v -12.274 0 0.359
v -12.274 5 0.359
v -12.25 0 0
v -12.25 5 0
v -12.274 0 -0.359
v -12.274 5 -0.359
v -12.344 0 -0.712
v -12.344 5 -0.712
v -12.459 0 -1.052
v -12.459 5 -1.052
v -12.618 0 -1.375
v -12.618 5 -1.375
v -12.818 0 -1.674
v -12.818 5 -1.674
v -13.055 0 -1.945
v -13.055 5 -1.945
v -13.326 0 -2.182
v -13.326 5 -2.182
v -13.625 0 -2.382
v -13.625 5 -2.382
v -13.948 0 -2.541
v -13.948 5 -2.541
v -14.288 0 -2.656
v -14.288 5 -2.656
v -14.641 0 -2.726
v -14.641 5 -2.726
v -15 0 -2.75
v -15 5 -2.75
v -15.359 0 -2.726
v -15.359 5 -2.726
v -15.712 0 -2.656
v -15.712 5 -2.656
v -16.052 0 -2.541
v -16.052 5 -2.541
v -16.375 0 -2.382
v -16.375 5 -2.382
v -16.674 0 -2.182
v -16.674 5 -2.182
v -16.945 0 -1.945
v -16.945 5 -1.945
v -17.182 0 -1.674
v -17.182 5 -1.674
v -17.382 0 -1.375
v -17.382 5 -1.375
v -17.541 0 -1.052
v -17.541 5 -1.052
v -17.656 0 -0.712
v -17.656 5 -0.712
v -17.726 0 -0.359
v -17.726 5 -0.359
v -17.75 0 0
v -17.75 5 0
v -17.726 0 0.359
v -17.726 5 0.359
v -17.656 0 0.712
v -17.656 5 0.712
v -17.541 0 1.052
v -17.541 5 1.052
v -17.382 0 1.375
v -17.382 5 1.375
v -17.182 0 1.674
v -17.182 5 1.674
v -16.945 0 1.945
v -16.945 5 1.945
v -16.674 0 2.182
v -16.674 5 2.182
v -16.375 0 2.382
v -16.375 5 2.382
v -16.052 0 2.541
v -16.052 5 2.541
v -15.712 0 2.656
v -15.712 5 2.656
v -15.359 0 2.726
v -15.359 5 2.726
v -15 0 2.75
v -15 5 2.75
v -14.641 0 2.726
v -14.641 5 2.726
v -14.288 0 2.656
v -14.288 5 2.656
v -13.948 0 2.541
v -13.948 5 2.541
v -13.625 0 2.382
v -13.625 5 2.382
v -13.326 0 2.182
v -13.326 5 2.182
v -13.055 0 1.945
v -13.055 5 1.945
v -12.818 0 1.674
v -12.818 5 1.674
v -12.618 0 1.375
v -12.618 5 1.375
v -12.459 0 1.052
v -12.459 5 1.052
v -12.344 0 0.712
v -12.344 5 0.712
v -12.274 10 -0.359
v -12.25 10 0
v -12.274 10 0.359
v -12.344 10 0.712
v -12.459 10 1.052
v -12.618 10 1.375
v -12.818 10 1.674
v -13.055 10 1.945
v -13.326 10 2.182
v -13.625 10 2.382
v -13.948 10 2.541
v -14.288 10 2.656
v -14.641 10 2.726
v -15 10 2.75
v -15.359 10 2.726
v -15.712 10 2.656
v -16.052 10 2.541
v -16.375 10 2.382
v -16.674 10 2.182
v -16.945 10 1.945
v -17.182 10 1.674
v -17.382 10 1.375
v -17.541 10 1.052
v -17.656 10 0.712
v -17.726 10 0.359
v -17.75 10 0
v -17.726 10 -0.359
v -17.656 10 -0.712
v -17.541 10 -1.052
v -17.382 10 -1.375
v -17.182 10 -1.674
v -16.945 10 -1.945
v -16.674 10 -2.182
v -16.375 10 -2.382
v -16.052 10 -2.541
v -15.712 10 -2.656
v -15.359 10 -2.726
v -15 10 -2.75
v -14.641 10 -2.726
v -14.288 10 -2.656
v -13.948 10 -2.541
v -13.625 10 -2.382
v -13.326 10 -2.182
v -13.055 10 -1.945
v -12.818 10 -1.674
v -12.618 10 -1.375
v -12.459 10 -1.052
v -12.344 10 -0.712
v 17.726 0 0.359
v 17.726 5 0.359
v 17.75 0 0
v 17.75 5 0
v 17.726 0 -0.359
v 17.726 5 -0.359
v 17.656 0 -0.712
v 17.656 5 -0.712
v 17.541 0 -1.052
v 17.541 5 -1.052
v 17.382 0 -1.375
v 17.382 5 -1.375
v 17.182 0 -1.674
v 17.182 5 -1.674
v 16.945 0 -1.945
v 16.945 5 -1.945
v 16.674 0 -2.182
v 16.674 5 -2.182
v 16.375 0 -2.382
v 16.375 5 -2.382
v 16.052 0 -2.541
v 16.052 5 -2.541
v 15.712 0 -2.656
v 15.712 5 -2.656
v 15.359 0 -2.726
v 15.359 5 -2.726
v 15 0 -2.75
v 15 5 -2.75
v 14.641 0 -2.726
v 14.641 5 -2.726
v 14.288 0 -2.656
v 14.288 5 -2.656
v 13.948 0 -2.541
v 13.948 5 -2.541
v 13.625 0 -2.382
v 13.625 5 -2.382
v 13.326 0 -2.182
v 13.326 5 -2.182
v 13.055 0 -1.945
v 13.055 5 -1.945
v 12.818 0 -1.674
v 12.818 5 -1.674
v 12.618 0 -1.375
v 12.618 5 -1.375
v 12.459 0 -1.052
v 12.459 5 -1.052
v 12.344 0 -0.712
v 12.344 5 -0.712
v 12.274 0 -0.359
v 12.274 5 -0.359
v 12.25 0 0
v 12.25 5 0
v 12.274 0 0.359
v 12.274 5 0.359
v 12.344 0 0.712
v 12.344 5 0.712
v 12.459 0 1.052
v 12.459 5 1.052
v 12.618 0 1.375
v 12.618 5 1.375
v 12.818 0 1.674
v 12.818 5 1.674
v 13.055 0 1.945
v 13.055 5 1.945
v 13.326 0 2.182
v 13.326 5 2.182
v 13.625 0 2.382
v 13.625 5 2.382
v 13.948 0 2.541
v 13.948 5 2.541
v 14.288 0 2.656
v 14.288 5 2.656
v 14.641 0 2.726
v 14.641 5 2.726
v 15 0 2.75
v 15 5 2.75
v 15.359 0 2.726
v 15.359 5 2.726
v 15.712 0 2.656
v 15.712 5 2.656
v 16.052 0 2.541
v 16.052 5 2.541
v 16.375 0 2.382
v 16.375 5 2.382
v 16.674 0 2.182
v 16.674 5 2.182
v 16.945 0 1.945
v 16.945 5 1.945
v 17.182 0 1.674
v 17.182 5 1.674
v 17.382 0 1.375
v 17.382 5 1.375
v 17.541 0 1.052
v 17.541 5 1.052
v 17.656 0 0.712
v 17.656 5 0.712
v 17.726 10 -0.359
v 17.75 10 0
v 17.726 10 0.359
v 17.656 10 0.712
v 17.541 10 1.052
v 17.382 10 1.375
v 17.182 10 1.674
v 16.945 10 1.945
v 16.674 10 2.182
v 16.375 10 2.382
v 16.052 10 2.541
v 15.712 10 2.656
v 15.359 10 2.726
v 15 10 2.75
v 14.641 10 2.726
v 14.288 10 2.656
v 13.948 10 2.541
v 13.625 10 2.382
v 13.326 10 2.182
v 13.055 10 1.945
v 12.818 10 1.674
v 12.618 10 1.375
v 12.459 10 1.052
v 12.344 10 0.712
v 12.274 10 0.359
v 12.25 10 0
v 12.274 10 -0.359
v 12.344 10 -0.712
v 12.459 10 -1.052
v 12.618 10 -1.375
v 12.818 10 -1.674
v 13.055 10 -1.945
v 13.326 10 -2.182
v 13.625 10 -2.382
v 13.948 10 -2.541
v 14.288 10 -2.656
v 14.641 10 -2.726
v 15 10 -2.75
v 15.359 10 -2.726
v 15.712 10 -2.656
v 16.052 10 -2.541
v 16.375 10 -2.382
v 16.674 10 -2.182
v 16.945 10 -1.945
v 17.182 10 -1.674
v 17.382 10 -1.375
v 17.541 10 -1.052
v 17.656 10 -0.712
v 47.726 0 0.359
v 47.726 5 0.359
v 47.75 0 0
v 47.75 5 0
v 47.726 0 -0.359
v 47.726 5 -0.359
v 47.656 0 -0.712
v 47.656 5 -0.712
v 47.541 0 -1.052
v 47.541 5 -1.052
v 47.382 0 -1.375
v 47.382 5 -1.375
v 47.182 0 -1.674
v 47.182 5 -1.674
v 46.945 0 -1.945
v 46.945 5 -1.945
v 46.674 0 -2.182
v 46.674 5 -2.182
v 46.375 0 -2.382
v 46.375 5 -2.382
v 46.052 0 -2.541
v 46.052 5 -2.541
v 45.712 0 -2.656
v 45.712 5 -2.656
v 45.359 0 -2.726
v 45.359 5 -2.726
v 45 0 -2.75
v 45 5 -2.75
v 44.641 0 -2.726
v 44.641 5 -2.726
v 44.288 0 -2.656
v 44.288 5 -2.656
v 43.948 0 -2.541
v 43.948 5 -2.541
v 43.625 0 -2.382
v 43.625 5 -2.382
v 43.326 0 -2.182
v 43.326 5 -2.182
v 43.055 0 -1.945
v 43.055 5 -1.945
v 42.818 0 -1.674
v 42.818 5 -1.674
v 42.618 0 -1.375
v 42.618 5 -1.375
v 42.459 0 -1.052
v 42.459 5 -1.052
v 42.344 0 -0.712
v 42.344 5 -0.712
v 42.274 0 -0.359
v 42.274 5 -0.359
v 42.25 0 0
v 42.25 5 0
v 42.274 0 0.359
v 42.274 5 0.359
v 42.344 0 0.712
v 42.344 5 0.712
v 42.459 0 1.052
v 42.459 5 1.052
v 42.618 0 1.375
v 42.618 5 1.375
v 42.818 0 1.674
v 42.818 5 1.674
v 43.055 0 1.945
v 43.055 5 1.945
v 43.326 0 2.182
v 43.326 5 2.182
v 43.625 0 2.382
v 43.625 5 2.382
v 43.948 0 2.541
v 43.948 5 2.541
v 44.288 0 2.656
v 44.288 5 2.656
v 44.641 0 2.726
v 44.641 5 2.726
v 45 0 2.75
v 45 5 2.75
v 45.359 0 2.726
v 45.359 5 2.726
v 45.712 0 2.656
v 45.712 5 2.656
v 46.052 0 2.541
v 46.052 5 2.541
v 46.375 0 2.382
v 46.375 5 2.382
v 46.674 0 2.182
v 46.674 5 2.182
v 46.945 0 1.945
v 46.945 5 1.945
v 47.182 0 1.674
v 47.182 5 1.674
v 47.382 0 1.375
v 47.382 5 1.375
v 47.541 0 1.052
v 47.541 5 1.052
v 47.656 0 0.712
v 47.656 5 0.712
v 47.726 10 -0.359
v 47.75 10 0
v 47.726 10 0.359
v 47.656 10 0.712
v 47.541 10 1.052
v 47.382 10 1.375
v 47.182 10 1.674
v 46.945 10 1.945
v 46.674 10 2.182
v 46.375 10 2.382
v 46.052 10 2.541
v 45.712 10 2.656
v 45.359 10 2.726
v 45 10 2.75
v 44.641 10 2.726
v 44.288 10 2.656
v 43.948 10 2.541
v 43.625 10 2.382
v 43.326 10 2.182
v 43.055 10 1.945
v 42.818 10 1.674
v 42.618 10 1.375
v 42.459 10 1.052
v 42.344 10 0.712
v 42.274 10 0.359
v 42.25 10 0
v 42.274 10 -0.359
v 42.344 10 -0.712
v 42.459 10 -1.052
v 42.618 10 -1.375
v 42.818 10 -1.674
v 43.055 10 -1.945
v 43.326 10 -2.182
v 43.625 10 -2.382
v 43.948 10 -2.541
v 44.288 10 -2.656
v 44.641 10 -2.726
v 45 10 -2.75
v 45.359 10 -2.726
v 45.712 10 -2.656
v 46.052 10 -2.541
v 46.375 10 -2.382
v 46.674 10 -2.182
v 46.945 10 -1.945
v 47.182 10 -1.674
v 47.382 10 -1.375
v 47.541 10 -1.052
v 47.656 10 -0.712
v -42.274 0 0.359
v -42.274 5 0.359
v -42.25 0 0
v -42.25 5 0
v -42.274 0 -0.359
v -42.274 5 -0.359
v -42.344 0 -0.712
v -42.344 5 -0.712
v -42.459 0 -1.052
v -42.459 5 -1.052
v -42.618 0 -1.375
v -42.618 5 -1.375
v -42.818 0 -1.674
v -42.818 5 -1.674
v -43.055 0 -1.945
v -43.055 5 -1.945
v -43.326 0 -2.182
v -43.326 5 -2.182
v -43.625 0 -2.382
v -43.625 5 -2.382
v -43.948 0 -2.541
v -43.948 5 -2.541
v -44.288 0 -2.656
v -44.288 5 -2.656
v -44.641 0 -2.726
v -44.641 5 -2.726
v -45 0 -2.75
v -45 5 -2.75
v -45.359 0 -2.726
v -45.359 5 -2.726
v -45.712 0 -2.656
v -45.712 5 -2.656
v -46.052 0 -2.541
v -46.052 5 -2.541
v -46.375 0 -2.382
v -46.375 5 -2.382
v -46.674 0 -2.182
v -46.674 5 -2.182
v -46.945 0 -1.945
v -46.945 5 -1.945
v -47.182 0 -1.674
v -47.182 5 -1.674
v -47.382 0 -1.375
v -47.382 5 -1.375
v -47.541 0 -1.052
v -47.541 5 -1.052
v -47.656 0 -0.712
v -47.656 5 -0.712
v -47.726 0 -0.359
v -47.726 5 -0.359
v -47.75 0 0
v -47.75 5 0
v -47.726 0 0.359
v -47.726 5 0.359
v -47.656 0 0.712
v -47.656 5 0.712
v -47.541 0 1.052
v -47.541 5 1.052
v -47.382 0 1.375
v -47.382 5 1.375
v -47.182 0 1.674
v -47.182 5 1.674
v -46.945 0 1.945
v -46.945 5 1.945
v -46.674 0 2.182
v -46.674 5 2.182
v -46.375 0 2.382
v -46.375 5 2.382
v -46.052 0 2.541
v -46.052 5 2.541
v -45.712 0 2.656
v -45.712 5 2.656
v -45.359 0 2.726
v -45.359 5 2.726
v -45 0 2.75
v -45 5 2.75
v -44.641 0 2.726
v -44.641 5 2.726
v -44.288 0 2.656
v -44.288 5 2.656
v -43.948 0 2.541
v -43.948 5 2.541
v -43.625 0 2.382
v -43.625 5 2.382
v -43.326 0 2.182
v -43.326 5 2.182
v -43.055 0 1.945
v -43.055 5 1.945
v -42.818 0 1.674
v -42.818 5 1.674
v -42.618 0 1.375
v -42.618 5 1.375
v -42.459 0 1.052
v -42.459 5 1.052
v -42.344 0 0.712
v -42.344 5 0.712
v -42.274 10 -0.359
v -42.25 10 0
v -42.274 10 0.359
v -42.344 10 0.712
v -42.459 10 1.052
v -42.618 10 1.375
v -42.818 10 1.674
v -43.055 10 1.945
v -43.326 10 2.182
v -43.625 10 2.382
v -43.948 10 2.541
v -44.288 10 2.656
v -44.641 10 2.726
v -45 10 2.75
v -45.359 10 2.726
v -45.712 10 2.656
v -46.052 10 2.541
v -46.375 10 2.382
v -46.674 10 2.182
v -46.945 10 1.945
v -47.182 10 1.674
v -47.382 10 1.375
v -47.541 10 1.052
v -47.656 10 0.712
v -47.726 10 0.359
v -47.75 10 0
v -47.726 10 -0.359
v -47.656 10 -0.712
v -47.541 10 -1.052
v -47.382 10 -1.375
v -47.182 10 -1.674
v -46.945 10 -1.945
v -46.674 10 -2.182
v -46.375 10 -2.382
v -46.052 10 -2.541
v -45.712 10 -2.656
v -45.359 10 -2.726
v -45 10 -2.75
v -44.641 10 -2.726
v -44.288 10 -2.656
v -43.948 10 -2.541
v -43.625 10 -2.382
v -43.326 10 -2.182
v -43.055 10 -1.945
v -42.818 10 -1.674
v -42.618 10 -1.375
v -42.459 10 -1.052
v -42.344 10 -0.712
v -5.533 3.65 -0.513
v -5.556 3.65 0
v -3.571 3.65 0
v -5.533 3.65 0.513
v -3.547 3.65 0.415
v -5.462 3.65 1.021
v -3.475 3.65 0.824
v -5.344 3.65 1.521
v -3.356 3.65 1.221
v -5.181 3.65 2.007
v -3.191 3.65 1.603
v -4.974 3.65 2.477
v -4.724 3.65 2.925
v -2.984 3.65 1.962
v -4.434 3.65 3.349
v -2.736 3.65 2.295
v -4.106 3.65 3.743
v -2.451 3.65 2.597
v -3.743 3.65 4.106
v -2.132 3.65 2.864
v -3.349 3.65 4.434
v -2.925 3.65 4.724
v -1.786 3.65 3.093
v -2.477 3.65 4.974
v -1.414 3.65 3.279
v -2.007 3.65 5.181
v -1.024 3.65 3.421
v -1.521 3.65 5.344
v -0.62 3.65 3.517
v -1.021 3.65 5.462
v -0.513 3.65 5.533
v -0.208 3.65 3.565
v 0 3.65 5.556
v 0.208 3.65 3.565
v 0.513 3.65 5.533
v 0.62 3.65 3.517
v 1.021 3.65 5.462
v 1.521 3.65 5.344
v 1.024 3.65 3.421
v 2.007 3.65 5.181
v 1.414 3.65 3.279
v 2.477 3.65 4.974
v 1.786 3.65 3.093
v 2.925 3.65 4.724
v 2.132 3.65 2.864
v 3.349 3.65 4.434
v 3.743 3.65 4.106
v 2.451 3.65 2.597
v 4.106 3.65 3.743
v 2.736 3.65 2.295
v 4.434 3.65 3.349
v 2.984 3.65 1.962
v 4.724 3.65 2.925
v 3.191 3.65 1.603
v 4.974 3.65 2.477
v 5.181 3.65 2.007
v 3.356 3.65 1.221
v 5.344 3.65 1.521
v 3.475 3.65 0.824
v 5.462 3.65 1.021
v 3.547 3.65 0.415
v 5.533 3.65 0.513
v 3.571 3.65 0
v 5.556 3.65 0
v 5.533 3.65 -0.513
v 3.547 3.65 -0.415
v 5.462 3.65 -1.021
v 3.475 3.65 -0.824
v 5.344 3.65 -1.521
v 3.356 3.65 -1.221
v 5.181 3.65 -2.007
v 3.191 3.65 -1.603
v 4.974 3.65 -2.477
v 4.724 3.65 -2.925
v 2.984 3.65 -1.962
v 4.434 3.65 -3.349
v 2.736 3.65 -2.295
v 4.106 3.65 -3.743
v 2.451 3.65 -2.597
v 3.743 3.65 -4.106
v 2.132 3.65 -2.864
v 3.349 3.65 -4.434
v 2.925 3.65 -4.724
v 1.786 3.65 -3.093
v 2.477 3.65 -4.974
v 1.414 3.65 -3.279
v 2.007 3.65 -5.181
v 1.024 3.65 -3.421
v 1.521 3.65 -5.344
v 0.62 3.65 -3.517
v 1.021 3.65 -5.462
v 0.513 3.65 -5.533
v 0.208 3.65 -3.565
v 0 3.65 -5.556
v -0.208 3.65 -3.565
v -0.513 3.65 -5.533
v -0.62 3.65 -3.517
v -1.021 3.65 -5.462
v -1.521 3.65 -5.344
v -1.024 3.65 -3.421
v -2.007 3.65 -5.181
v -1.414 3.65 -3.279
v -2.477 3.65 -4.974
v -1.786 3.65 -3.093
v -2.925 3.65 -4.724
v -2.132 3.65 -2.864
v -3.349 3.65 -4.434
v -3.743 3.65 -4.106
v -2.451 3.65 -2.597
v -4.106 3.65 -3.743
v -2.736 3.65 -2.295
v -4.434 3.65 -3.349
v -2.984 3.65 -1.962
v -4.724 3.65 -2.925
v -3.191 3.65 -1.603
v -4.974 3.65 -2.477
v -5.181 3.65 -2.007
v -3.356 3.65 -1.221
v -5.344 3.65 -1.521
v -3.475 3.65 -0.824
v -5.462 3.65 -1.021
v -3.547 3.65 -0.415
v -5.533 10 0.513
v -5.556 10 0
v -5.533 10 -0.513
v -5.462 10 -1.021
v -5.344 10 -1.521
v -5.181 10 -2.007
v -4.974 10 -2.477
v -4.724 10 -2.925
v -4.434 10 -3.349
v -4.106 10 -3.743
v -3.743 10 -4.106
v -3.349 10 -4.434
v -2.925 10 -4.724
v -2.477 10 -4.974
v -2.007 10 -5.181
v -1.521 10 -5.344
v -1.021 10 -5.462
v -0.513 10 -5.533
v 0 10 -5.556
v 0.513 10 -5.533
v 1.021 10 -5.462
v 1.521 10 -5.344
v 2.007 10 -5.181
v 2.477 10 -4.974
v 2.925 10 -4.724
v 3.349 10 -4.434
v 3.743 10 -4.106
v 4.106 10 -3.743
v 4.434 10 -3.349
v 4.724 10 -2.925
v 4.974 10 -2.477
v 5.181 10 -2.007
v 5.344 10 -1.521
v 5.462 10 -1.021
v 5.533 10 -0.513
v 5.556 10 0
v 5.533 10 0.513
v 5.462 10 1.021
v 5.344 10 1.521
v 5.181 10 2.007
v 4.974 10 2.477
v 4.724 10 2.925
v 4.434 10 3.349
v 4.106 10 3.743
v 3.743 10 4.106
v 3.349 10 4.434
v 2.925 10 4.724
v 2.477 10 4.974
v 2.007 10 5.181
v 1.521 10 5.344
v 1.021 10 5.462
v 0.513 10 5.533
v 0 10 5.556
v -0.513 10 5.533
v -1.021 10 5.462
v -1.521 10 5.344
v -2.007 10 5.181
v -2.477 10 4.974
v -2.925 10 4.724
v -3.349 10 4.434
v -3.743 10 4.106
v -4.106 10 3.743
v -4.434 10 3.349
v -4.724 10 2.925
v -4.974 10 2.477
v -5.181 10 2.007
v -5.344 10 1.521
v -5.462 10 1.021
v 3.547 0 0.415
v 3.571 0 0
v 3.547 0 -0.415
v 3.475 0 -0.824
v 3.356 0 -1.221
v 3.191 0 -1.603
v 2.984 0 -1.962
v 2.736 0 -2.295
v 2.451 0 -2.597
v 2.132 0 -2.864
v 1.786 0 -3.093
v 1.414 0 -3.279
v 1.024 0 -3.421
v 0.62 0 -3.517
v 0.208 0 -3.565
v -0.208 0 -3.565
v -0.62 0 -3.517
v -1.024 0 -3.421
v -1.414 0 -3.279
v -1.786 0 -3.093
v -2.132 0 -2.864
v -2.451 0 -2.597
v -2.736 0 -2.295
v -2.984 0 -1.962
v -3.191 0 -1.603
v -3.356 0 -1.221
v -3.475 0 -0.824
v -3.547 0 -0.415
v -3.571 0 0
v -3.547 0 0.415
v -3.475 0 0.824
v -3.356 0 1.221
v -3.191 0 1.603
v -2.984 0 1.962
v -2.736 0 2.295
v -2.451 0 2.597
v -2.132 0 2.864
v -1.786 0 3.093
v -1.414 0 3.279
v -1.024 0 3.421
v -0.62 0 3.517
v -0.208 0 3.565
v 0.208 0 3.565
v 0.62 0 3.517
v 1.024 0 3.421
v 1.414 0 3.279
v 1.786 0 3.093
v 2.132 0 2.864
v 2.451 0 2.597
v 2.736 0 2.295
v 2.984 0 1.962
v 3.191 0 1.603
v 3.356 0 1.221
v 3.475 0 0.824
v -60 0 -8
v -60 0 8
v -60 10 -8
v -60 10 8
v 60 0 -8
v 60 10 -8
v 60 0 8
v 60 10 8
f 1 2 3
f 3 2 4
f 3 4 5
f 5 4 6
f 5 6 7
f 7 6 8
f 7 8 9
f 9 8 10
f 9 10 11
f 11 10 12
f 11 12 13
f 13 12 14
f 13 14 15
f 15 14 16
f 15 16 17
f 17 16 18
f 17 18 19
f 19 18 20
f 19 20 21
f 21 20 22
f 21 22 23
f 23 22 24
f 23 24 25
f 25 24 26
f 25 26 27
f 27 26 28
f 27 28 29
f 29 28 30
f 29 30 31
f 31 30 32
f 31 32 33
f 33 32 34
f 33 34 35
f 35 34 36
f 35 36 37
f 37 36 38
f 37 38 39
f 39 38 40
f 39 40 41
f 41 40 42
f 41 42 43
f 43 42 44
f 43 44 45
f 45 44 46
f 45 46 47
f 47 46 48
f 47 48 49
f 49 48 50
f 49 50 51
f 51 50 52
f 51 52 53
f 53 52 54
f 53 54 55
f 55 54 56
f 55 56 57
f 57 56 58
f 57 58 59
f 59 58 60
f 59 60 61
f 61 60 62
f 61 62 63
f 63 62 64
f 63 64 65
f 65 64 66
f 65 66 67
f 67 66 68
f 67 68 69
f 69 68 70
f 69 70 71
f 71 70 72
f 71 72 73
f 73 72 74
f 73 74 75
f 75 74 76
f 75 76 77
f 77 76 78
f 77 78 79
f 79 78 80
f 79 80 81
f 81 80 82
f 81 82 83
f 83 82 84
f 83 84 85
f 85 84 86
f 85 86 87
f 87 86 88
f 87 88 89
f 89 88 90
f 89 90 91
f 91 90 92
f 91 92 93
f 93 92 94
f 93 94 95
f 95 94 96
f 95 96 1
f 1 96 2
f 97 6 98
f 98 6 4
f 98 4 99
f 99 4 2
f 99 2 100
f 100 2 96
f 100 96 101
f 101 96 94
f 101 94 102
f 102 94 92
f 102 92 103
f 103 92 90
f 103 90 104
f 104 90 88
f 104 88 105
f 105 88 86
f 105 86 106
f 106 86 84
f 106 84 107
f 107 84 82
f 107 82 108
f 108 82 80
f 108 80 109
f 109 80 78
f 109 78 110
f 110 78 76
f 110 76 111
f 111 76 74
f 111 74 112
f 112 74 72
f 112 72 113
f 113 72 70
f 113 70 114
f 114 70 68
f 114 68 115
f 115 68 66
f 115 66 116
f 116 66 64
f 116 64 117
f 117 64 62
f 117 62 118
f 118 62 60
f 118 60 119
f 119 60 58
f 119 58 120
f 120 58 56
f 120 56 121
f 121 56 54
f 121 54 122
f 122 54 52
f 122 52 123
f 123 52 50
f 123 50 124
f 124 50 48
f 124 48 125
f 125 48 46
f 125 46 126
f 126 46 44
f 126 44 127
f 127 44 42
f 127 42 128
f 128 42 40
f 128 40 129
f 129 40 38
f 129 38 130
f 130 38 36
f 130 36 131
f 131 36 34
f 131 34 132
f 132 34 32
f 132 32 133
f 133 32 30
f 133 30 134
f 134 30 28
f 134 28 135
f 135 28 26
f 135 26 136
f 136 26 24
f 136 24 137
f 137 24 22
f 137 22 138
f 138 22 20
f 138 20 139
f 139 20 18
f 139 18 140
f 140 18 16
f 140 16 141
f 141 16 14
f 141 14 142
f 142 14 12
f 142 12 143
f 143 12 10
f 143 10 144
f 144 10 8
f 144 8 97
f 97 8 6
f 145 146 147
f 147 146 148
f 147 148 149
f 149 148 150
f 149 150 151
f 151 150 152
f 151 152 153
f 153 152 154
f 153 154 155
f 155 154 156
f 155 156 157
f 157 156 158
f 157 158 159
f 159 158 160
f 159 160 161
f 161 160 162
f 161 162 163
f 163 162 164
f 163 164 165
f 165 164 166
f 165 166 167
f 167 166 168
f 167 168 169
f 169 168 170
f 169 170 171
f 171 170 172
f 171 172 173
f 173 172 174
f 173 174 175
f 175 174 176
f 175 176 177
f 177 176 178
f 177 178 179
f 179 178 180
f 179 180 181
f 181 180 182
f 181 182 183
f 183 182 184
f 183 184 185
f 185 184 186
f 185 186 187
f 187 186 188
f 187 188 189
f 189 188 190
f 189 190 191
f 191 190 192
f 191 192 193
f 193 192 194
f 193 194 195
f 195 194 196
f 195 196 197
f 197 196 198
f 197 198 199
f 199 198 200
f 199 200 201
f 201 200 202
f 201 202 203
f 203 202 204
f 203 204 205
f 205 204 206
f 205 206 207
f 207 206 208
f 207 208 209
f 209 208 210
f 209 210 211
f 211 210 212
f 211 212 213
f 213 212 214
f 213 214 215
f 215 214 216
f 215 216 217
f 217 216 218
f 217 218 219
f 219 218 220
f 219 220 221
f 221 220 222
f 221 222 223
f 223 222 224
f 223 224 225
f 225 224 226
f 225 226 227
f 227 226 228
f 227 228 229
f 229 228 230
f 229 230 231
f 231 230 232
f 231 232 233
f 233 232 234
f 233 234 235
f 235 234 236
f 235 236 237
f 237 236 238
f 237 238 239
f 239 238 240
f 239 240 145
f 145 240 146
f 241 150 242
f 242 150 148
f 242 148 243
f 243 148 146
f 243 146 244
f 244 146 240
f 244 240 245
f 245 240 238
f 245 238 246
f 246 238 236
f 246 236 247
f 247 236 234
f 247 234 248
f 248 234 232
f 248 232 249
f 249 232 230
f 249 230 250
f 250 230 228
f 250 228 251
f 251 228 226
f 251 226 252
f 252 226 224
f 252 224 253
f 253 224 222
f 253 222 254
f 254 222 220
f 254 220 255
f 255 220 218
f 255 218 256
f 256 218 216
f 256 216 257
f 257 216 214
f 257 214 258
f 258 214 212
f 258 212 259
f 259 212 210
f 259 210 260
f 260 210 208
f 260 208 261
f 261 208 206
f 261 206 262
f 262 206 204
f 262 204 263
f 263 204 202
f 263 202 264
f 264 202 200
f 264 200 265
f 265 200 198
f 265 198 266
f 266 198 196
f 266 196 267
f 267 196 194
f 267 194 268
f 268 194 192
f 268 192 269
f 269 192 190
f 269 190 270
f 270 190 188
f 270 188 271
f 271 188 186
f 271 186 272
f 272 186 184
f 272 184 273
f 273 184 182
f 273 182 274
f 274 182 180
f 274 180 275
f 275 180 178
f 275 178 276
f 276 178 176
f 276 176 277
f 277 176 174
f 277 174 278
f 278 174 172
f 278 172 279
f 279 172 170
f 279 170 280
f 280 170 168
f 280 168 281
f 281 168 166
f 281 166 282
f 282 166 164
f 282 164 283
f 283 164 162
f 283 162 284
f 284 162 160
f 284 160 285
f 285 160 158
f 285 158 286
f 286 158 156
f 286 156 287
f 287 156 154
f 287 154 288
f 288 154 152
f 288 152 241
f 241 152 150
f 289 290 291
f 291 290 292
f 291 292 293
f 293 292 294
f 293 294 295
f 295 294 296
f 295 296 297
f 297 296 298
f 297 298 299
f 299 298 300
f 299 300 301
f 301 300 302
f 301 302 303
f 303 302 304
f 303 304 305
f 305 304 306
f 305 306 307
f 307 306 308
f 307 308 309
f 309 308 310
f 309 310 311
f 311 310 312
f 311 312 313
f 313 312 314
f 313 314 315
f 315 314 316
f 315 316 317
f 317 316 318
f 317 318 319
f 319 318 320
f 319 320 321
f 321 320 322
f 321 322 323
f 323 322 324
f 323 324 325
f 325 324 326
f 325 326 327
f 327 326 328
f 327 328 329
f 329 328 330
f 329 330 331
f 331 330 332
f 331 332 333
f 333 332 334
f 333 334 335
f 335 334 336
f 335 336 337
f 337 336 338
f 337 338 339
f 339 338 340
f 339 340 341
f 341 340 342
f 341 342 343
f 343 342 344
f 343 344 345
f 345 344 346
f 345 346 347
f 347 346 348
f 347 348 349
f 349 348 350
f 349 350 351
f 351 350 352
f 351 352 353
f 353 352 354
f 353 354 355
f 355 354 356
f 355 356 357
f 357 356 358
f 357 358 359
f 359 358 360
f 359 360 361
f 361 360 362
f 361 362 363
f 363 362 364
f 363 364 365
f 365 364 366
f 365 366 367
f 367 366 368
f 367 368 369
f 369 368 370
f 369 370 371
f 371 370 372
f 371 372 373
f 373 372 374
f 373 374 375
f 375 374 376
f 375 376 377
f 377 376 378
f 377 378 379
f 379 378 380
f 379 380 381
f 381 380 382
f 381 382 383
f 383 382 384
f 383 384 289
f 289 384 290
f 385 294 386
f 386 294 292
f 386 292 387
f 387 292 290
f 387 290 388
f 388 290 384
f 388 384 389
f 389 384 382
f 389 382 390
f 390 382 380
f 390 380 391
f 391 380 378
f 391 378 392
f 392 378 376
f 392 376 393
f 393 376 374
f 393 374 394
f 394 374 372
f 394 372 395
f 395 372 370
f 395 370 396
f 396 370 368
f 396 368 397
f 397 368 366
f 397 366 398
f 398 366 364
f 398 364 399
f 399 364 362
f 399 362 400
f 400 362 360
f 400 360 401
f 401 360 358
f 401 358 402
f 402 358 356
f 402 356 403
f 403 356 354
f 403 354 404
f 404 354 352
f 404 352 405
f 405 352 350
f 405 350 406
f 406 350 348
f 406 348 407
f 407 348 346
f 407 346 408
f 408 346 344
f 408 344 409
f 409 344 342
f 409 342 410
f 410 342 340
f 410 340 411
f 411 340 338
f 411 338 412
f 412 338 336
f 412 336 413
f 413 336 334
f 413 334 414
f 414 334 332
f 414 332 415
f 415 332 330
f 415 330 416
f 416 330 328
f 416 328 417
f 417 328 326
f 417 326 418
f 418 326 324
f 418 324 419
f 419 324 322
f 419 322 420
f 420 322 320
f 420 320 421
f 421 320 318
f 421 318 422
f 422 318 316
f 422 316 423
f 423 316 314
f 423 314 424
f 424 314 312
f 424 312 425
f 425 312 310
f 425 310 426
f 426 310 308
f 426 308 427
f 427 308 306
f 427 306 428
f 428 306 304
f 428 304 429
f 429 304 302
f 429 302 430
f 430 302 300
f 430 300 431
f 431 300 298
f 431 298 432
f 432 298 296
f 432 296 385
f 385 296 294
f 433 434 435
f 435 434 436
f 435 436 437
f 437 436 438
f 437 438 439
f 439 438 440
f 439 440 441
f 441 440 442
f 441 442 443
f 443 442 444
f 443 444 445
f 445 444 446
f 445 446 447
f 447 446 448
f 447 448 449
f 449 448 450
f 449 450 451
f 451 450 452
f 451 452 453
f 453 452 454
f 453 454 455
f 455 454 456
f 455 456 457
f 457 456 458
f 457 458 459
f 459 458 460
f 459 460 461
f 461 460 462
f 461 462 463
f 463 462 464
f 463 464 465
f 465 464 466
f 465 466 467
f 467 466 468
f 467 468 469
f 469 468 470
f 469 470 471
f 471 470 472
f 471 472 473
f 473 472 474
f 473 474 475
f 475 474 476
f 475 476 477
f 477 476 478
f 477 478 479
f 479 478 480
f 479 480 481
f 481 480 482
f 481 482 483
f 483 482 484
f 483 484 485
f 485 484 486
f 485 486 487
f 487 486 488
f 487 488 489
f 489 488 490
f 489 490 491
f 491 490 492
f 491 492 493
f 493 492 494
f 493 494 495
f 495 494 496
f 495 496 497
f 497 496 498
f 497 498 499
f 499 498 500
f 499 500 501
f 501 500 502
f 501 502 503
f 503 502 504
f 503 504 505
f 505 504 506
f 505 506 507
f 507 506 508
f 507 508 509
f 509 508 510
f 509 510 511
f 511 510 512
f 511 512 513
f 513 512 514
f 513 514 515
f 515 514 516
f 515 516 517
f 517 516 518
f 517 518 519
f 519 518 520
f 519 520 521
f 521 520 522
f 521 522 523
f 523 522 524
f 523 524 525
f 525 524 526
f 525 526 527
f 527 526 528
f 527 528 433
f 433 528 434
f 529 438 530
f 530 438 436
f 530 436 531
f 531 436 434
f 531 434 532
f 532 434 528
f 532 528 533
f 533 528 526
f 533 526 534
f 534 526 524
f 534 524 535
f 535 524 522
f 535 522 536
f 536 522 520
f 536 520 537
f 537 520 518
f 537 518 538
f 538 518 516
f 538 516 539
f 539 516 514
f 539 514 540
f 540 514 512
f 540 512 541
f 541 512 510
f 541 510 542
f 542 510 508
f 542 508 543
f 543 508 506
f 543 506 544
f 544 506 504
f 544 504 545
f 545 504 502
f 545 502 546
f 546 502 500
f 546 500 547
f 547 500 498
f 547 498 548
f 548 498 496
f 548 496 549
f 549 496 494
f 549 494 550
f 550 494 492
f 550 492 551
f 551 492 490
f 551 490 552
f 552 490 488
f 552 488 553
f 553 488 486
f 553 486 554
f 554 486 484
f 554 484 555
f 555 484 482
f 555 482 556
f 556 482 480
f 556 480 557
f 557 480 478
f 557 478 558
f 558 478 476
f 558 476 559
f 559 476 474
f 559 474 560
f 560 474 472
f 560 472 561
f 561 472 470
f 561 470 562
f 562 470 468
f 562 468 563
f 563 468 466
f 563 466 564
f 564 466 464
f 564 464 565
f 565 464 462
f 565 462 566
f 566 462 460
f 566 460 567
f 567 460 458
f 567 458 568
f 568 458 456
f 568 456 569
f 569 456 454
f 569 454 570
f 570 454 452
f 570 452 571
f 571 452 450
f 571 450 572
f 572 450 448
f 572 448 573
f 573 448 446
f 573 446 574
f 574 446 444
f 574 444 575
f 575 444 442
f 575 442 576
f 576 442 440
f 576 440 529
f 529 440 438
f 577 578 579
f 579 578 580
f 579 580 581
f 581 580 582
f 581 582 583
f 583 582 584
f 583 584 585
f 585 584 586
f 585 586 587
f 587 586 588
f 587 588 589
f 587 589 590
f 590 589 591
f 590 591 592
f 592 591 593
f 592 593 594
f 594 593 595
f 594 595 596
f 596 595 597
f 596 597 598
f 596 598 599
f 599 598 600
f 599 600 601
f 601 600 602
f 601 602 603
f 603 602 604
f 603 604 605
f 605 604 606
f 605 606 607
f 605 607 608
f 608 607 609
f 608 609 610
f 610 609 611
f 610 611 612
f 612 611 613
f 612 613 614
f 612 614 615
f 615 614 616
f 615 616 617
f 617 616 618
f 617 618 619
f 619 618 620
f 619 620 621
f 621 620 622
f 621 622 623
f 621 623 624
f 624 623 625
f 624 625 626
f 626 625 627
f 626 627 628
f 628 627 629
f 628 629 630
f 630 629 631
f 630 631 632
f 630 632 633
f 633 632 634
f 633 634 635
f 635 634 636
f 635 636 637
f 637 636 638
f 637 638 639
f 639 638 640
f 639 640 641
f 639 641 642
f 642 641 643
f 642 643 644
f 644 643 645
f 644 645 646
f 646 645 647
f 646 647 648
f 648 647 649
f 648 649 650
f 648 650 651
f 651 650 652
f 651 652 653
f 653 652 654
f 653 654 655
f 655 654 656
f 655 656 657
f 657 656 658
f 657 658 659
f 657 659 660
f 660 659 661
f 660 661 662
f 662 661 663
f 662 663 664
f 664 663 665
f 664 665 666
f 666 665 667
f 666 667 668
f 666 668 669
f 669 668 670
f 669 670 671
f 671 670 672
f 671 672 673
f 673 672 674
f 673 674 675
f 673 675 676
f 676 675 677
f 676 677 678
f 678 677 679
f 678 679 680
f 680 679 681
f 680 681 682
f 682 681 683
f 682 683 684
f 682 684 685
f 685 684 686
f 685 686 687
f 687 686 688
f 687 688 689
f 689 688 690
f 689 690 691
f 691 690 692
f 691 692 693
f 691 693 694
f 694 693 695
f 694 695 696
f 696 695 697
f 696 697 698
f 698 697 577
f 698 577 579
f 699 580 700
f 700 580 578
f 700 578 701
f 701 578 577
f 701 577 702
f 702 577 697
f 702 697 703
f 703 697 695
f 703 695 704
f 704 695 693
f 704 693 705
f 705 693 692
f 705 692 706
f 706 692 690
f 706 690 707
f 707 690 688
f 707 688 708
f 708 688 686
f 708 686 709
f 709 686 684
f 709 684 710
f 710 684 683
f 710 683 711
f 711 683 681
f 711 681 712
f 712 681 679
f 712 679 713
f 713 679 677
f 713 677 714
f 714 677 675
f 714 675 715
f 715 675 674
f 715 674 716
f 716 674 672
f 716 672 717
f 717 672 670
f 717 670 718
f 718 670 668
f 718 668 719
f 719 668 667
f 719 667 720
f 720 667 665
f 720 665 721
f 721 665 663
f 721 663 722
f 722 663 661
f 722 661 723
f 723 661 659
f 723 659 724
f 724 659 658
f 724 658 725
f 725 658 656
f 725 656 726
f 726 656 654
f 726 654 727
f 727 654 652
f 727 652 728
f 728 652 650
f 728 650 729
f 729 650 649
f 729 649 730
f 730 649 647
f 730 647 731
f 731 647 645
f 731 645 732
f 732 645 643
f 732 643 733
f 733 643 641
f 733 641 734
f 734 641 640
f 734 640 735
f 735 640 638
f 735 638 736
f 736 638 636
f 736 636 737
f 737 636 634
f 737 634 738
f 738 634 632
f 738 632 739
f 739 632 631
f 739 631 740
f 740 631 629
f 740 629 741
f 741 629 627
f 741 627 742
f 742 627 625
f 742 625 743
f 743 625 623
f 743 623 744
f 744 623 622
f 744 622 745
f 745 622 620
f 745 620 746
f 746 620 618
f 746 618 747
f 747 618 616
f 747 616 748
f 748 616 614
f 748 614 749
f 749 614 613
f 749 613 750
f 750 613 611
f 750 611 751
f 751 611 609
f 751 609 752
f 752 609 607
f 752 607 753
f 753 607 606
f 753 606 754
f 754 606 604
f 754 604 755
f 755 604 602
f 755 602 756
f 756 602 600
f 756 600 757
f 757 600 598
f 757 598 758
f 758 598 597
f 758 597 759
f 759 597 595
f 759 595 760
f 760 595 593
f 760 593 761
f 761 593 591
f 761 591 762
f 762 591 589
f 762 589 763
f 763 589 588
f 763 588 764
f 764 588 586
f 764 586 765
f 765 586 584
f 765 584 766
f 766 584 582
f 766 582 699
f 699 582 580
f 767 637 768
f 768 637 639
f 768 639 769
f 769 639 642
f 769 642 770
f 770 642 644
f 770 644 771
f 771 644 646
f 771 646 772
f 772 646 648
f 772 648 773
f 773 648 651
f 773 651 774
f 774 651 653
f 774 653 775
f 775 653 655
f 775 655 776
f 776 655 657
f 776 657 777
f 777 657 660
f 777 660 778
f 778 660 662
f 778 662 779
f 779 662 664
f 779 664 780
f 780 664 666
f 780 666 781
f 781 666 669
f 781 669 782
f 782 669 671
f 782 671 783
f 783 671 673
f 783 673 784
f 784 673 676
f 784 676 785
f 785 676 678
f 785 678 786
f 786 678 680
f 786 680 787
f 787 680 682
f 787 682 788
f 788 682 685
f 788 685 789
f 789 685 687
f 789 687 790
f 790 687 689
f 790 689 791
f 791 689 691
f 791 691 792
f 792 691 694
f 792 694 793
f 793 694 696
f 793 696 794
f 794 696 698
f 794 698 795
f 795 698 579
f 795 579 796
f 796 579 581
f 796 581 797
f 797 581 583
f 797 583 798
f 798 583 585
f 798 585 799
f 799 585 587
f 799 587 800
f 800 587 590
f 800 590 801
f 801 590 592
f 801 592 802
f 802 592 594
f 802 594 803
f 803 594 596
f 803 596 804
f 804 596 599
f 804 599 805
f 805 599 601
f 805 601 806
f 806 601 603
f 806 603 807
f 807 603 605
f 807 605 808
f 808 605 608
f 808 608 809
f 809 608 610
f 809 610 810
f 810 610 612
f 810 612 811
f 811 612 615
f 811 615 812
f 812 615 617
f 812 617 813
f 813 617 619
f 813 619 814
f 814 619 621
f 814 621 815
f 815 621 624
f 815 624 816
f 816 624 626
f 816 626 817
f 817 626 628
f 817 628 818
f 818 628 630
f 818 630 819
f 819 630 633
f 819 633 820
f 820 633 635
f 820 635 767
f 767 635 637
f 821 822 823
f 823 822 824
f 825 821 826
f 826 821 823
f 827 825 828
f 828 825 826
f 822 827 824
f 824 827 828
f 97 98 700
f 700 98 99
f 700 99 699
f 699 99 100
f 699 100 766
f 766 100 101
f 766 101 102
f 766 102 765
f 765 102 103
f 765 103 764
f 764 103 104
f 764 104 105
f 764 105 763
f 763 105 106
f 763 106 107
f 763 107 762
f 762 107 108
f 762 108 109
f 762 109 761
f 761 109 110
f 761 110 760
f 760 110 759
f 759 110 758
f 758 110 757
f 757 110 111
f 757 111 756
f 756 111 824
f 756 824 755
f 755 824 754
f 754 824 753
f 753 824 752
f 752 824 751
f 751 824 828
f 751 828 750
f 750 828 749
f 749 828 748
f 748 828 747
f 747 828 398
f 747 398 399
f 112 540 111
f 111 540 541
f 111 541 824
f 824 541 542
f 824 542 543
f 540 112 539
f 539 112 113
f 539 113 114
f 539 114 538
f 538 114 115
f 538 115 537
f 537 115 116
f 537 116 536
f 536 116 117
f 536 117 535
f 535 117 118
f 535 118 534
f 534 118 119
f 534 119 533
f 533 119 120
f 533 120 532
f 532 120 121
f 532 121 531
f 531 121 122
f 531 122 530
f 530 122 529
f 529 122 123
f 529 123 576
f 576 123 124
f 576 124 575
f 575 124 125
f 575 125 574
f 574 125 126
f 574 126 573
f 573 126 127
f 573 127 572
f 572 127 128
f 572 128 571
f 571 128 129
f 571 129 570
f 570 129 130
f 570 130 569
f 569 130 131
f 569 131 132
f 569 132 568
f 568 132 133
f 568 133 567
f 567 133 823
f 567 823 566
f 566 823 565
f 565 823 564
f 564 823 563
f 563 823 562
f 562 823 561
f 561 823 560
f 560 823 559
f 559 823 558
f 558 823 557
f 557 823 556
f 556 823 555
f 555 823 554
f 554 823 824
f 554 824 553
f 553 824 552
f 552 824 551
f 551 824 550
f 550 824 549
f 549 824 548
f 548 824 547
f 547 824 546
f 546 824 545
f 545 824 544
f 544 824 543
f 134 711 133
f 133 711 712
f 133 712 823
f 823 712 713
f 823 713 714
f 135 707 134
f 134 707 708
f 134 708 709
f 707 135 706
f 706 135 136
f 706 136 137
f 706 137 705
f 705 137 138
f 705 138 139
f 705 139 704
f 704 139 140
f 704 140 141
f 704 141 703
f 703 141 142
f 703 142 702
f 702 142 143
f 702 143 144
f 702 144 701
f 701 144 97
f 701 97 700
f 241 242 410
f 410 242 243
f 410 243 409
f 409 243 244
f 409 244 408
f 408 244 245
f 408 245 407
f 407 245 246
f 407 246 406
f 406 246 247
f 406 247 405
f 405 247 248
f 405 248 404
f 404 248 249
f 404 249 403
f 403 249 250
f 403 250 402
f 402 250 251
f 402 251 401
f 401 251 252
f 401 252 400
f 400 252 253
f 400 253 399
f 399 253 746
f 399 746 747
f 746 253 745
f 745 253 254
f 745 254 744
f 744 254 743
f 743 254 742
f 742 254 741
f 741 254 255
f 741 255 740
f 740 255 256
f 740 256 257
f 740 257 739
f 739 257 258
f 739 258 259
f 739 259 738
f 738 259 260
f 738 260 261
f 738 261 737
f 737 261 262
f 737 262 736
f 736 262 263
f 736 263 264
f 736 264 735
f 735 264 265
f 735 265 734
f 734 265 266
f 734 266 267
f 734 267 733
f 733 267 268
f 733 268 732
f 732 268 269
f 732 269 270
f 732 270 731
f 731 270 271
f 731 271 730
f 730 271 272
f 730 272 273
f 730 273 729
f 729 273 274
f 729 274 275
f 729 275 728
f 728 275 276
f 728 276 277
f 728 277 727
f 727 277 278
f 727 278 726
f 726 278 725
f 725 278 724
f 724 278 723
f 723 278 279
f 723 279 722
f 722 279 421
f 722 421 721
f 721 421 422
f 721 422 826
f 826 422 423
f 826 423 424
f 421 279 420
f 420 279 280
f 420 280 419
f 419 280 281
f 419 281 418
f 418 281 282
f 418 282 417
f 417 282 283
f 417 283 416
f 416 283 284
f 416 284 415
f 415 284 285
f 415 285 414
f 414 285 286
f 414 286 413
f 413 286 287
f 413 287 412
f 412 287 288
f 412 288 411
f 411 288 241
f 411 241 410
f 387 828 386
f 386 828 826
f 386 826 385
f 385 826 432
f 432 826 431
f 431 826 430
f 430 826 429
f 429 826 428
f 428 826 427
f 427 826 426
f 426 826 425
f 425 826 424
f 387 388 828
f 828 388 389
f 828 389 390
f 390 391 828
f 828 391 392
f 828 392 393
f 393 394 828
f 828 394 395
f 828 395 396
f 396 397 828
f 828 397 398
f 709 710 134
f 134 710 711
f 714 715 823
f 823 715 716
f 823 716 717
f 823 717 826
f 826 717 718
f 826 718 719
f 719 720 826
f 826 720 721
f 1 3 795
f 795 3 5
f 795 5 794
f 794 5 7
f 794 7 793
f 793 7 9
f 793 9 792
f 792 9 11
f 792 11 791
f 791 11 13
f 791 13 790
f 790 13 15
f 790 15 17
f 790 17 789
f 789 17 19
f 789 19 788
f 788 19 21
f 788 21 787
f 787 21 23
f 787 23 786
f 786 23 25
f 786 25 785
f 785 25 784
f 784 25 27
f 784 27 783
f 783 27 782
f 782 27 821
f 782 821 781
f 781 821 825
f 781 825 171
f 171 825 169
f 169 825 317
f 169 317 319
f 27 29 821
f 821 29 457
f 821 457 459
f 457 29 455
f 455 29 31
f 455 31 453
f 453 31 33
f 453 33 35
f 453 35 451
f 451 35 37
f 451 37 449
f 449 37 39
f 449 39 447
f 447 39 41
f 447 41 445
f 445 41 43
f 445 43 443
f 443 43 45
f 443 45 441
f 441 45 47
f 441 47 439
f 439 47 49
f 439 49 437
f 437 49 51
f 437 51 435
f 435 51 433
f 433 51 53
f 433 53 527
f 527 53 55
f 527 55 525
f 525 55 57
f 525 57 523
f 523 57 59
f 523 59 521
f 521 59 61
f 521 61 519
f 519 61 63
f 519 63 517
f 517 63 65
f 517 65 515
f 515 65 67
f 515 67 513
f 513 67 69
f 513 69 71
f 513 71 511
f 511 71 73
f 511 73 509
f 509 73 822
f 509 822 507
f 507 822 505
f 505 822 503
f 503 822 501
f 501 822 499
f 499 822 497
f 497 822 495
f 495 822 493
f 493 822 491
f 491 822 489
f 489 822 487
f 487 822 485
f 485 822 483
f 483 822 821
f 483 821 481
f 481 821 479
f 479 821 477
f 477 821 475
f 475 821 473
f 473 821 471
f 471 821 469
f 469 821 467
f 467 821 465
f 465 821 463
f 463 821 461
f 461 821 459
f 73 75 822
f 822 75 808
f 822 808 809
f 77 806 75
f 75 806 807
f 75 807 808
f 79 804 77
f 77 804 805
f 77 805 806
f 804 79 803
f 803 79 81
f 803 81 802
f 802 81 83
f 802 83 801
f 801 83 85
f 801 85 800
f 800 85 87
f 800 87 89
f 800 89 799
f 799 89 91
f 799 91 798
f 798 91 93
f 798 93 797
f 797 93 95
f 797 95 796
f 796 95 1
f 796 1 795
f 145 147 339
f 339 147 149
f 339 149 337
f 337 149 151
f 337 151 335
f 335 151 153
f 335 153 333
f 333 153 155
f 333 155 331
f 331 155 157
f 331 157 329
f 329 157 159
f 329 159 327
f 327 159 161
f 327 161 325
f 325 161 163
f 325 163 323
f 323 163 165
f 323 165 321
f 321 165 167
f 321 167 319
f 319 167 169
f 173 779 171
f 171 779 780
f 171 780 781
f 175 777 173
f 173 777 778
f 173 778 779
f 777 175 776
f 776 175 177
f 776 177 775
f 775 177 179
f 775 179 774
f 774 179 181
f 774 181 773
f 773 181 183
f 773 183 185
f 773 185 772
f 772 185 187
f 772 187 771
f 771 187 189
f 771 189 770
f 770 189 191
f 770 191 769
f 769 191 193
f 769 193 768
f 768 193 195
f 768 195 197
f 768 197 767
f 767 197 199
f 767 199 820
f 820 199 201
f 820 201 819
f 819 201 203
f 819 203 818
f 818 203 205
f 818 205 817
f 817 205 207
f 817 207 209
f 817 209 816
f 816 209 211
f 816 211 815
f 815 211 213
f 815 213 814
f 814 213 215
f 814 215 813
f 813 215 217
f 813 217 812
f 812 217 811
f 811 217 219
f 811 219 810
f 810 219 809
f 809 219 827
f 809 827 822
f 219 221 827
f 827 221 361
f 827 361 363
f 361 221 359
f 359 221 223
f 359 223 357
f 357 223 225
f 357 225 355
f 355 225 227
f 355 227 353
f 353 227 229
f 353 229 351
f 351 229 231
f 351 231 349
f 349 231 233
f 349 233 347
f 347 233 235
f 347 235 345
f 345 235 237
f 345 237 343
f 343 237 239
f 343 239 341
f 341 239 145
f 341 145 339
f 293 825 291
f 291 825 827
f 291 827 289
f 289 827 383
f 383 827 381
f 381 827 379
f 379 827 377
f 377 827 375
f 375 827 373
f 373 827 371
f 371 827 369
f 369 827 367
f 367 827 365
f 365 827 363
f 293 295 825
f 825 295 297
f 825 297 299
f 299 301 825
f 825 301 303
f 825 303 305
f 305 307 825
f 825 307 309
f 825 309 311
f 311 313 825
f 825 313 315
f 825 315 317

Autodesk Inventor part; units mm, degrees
ref_plane "YZ Plane" through (0, 0, 0) normal (1, 0, 0) x (0, 1, 0)
ref_plane "XZ Plane" through (0, 0, 0) normal (0, 1, 0) x (-1, 0, 0)
ref_plane "XY Plane" through (0, 0, 0) normal (0, 0, 1) x (1, 0, 0)
sketch "Sketch1" plane through (0, 0, 0) normal (0, 1, 0) x (-1, 0, 0)
  line L0 (60, 8) -> (-60, 8)
  line L1 (-60, 8) -> (-60, -8)
  line L2 (-60, -8) -> (60, -8)
  line L3 (60, -8) -> (60, 8)
  line L4 (60, 8) -> (-60, -8) construction
  line L5 (-60, 8) -> (60, -8) construction
  point P0 (0, 0)
  dimension "d0" = 16
  dimension "d1" = 120
extrude "Extrusion1" add sketch "Sketch1" along normal blind 10
hole "Hole1" at (0, 10, 0) direction (0, -1, 0) diameter 7.142 depth 25.4 counterbore diameter 11.113 counterbore depth 6.35 clearance for "Socket Head Cap Screw" size "1/4" standard "Ansi Unified Screw Threads"
sketch "Sketch2" plane through (0, 10, 0) normal (0, 1, 0) x (1, 0, 0)
  circle A0 centre (15, 0) radius 2.75
  circle A1 centre (45, 0) radius 2.75
  circle A2 centre (-15, 0) radius 2.75
  circle A3 centre (-45, 0) radius 2.75
  point P0 (0, 0)
  dimension "d15" = 5.5
  dimension "d16" = 15
  dimension "d17" = 30
  dimension "d18" = 5.5
  dimension "d19" = 15
  dimension "d20" = 5.5
  dimension "d21" = 30
  dimension "d22" = 5.5
extrude "Extrusion2" cut sketch "Sketch2" against normal up to next
properties part number "flowmeter_mount"
